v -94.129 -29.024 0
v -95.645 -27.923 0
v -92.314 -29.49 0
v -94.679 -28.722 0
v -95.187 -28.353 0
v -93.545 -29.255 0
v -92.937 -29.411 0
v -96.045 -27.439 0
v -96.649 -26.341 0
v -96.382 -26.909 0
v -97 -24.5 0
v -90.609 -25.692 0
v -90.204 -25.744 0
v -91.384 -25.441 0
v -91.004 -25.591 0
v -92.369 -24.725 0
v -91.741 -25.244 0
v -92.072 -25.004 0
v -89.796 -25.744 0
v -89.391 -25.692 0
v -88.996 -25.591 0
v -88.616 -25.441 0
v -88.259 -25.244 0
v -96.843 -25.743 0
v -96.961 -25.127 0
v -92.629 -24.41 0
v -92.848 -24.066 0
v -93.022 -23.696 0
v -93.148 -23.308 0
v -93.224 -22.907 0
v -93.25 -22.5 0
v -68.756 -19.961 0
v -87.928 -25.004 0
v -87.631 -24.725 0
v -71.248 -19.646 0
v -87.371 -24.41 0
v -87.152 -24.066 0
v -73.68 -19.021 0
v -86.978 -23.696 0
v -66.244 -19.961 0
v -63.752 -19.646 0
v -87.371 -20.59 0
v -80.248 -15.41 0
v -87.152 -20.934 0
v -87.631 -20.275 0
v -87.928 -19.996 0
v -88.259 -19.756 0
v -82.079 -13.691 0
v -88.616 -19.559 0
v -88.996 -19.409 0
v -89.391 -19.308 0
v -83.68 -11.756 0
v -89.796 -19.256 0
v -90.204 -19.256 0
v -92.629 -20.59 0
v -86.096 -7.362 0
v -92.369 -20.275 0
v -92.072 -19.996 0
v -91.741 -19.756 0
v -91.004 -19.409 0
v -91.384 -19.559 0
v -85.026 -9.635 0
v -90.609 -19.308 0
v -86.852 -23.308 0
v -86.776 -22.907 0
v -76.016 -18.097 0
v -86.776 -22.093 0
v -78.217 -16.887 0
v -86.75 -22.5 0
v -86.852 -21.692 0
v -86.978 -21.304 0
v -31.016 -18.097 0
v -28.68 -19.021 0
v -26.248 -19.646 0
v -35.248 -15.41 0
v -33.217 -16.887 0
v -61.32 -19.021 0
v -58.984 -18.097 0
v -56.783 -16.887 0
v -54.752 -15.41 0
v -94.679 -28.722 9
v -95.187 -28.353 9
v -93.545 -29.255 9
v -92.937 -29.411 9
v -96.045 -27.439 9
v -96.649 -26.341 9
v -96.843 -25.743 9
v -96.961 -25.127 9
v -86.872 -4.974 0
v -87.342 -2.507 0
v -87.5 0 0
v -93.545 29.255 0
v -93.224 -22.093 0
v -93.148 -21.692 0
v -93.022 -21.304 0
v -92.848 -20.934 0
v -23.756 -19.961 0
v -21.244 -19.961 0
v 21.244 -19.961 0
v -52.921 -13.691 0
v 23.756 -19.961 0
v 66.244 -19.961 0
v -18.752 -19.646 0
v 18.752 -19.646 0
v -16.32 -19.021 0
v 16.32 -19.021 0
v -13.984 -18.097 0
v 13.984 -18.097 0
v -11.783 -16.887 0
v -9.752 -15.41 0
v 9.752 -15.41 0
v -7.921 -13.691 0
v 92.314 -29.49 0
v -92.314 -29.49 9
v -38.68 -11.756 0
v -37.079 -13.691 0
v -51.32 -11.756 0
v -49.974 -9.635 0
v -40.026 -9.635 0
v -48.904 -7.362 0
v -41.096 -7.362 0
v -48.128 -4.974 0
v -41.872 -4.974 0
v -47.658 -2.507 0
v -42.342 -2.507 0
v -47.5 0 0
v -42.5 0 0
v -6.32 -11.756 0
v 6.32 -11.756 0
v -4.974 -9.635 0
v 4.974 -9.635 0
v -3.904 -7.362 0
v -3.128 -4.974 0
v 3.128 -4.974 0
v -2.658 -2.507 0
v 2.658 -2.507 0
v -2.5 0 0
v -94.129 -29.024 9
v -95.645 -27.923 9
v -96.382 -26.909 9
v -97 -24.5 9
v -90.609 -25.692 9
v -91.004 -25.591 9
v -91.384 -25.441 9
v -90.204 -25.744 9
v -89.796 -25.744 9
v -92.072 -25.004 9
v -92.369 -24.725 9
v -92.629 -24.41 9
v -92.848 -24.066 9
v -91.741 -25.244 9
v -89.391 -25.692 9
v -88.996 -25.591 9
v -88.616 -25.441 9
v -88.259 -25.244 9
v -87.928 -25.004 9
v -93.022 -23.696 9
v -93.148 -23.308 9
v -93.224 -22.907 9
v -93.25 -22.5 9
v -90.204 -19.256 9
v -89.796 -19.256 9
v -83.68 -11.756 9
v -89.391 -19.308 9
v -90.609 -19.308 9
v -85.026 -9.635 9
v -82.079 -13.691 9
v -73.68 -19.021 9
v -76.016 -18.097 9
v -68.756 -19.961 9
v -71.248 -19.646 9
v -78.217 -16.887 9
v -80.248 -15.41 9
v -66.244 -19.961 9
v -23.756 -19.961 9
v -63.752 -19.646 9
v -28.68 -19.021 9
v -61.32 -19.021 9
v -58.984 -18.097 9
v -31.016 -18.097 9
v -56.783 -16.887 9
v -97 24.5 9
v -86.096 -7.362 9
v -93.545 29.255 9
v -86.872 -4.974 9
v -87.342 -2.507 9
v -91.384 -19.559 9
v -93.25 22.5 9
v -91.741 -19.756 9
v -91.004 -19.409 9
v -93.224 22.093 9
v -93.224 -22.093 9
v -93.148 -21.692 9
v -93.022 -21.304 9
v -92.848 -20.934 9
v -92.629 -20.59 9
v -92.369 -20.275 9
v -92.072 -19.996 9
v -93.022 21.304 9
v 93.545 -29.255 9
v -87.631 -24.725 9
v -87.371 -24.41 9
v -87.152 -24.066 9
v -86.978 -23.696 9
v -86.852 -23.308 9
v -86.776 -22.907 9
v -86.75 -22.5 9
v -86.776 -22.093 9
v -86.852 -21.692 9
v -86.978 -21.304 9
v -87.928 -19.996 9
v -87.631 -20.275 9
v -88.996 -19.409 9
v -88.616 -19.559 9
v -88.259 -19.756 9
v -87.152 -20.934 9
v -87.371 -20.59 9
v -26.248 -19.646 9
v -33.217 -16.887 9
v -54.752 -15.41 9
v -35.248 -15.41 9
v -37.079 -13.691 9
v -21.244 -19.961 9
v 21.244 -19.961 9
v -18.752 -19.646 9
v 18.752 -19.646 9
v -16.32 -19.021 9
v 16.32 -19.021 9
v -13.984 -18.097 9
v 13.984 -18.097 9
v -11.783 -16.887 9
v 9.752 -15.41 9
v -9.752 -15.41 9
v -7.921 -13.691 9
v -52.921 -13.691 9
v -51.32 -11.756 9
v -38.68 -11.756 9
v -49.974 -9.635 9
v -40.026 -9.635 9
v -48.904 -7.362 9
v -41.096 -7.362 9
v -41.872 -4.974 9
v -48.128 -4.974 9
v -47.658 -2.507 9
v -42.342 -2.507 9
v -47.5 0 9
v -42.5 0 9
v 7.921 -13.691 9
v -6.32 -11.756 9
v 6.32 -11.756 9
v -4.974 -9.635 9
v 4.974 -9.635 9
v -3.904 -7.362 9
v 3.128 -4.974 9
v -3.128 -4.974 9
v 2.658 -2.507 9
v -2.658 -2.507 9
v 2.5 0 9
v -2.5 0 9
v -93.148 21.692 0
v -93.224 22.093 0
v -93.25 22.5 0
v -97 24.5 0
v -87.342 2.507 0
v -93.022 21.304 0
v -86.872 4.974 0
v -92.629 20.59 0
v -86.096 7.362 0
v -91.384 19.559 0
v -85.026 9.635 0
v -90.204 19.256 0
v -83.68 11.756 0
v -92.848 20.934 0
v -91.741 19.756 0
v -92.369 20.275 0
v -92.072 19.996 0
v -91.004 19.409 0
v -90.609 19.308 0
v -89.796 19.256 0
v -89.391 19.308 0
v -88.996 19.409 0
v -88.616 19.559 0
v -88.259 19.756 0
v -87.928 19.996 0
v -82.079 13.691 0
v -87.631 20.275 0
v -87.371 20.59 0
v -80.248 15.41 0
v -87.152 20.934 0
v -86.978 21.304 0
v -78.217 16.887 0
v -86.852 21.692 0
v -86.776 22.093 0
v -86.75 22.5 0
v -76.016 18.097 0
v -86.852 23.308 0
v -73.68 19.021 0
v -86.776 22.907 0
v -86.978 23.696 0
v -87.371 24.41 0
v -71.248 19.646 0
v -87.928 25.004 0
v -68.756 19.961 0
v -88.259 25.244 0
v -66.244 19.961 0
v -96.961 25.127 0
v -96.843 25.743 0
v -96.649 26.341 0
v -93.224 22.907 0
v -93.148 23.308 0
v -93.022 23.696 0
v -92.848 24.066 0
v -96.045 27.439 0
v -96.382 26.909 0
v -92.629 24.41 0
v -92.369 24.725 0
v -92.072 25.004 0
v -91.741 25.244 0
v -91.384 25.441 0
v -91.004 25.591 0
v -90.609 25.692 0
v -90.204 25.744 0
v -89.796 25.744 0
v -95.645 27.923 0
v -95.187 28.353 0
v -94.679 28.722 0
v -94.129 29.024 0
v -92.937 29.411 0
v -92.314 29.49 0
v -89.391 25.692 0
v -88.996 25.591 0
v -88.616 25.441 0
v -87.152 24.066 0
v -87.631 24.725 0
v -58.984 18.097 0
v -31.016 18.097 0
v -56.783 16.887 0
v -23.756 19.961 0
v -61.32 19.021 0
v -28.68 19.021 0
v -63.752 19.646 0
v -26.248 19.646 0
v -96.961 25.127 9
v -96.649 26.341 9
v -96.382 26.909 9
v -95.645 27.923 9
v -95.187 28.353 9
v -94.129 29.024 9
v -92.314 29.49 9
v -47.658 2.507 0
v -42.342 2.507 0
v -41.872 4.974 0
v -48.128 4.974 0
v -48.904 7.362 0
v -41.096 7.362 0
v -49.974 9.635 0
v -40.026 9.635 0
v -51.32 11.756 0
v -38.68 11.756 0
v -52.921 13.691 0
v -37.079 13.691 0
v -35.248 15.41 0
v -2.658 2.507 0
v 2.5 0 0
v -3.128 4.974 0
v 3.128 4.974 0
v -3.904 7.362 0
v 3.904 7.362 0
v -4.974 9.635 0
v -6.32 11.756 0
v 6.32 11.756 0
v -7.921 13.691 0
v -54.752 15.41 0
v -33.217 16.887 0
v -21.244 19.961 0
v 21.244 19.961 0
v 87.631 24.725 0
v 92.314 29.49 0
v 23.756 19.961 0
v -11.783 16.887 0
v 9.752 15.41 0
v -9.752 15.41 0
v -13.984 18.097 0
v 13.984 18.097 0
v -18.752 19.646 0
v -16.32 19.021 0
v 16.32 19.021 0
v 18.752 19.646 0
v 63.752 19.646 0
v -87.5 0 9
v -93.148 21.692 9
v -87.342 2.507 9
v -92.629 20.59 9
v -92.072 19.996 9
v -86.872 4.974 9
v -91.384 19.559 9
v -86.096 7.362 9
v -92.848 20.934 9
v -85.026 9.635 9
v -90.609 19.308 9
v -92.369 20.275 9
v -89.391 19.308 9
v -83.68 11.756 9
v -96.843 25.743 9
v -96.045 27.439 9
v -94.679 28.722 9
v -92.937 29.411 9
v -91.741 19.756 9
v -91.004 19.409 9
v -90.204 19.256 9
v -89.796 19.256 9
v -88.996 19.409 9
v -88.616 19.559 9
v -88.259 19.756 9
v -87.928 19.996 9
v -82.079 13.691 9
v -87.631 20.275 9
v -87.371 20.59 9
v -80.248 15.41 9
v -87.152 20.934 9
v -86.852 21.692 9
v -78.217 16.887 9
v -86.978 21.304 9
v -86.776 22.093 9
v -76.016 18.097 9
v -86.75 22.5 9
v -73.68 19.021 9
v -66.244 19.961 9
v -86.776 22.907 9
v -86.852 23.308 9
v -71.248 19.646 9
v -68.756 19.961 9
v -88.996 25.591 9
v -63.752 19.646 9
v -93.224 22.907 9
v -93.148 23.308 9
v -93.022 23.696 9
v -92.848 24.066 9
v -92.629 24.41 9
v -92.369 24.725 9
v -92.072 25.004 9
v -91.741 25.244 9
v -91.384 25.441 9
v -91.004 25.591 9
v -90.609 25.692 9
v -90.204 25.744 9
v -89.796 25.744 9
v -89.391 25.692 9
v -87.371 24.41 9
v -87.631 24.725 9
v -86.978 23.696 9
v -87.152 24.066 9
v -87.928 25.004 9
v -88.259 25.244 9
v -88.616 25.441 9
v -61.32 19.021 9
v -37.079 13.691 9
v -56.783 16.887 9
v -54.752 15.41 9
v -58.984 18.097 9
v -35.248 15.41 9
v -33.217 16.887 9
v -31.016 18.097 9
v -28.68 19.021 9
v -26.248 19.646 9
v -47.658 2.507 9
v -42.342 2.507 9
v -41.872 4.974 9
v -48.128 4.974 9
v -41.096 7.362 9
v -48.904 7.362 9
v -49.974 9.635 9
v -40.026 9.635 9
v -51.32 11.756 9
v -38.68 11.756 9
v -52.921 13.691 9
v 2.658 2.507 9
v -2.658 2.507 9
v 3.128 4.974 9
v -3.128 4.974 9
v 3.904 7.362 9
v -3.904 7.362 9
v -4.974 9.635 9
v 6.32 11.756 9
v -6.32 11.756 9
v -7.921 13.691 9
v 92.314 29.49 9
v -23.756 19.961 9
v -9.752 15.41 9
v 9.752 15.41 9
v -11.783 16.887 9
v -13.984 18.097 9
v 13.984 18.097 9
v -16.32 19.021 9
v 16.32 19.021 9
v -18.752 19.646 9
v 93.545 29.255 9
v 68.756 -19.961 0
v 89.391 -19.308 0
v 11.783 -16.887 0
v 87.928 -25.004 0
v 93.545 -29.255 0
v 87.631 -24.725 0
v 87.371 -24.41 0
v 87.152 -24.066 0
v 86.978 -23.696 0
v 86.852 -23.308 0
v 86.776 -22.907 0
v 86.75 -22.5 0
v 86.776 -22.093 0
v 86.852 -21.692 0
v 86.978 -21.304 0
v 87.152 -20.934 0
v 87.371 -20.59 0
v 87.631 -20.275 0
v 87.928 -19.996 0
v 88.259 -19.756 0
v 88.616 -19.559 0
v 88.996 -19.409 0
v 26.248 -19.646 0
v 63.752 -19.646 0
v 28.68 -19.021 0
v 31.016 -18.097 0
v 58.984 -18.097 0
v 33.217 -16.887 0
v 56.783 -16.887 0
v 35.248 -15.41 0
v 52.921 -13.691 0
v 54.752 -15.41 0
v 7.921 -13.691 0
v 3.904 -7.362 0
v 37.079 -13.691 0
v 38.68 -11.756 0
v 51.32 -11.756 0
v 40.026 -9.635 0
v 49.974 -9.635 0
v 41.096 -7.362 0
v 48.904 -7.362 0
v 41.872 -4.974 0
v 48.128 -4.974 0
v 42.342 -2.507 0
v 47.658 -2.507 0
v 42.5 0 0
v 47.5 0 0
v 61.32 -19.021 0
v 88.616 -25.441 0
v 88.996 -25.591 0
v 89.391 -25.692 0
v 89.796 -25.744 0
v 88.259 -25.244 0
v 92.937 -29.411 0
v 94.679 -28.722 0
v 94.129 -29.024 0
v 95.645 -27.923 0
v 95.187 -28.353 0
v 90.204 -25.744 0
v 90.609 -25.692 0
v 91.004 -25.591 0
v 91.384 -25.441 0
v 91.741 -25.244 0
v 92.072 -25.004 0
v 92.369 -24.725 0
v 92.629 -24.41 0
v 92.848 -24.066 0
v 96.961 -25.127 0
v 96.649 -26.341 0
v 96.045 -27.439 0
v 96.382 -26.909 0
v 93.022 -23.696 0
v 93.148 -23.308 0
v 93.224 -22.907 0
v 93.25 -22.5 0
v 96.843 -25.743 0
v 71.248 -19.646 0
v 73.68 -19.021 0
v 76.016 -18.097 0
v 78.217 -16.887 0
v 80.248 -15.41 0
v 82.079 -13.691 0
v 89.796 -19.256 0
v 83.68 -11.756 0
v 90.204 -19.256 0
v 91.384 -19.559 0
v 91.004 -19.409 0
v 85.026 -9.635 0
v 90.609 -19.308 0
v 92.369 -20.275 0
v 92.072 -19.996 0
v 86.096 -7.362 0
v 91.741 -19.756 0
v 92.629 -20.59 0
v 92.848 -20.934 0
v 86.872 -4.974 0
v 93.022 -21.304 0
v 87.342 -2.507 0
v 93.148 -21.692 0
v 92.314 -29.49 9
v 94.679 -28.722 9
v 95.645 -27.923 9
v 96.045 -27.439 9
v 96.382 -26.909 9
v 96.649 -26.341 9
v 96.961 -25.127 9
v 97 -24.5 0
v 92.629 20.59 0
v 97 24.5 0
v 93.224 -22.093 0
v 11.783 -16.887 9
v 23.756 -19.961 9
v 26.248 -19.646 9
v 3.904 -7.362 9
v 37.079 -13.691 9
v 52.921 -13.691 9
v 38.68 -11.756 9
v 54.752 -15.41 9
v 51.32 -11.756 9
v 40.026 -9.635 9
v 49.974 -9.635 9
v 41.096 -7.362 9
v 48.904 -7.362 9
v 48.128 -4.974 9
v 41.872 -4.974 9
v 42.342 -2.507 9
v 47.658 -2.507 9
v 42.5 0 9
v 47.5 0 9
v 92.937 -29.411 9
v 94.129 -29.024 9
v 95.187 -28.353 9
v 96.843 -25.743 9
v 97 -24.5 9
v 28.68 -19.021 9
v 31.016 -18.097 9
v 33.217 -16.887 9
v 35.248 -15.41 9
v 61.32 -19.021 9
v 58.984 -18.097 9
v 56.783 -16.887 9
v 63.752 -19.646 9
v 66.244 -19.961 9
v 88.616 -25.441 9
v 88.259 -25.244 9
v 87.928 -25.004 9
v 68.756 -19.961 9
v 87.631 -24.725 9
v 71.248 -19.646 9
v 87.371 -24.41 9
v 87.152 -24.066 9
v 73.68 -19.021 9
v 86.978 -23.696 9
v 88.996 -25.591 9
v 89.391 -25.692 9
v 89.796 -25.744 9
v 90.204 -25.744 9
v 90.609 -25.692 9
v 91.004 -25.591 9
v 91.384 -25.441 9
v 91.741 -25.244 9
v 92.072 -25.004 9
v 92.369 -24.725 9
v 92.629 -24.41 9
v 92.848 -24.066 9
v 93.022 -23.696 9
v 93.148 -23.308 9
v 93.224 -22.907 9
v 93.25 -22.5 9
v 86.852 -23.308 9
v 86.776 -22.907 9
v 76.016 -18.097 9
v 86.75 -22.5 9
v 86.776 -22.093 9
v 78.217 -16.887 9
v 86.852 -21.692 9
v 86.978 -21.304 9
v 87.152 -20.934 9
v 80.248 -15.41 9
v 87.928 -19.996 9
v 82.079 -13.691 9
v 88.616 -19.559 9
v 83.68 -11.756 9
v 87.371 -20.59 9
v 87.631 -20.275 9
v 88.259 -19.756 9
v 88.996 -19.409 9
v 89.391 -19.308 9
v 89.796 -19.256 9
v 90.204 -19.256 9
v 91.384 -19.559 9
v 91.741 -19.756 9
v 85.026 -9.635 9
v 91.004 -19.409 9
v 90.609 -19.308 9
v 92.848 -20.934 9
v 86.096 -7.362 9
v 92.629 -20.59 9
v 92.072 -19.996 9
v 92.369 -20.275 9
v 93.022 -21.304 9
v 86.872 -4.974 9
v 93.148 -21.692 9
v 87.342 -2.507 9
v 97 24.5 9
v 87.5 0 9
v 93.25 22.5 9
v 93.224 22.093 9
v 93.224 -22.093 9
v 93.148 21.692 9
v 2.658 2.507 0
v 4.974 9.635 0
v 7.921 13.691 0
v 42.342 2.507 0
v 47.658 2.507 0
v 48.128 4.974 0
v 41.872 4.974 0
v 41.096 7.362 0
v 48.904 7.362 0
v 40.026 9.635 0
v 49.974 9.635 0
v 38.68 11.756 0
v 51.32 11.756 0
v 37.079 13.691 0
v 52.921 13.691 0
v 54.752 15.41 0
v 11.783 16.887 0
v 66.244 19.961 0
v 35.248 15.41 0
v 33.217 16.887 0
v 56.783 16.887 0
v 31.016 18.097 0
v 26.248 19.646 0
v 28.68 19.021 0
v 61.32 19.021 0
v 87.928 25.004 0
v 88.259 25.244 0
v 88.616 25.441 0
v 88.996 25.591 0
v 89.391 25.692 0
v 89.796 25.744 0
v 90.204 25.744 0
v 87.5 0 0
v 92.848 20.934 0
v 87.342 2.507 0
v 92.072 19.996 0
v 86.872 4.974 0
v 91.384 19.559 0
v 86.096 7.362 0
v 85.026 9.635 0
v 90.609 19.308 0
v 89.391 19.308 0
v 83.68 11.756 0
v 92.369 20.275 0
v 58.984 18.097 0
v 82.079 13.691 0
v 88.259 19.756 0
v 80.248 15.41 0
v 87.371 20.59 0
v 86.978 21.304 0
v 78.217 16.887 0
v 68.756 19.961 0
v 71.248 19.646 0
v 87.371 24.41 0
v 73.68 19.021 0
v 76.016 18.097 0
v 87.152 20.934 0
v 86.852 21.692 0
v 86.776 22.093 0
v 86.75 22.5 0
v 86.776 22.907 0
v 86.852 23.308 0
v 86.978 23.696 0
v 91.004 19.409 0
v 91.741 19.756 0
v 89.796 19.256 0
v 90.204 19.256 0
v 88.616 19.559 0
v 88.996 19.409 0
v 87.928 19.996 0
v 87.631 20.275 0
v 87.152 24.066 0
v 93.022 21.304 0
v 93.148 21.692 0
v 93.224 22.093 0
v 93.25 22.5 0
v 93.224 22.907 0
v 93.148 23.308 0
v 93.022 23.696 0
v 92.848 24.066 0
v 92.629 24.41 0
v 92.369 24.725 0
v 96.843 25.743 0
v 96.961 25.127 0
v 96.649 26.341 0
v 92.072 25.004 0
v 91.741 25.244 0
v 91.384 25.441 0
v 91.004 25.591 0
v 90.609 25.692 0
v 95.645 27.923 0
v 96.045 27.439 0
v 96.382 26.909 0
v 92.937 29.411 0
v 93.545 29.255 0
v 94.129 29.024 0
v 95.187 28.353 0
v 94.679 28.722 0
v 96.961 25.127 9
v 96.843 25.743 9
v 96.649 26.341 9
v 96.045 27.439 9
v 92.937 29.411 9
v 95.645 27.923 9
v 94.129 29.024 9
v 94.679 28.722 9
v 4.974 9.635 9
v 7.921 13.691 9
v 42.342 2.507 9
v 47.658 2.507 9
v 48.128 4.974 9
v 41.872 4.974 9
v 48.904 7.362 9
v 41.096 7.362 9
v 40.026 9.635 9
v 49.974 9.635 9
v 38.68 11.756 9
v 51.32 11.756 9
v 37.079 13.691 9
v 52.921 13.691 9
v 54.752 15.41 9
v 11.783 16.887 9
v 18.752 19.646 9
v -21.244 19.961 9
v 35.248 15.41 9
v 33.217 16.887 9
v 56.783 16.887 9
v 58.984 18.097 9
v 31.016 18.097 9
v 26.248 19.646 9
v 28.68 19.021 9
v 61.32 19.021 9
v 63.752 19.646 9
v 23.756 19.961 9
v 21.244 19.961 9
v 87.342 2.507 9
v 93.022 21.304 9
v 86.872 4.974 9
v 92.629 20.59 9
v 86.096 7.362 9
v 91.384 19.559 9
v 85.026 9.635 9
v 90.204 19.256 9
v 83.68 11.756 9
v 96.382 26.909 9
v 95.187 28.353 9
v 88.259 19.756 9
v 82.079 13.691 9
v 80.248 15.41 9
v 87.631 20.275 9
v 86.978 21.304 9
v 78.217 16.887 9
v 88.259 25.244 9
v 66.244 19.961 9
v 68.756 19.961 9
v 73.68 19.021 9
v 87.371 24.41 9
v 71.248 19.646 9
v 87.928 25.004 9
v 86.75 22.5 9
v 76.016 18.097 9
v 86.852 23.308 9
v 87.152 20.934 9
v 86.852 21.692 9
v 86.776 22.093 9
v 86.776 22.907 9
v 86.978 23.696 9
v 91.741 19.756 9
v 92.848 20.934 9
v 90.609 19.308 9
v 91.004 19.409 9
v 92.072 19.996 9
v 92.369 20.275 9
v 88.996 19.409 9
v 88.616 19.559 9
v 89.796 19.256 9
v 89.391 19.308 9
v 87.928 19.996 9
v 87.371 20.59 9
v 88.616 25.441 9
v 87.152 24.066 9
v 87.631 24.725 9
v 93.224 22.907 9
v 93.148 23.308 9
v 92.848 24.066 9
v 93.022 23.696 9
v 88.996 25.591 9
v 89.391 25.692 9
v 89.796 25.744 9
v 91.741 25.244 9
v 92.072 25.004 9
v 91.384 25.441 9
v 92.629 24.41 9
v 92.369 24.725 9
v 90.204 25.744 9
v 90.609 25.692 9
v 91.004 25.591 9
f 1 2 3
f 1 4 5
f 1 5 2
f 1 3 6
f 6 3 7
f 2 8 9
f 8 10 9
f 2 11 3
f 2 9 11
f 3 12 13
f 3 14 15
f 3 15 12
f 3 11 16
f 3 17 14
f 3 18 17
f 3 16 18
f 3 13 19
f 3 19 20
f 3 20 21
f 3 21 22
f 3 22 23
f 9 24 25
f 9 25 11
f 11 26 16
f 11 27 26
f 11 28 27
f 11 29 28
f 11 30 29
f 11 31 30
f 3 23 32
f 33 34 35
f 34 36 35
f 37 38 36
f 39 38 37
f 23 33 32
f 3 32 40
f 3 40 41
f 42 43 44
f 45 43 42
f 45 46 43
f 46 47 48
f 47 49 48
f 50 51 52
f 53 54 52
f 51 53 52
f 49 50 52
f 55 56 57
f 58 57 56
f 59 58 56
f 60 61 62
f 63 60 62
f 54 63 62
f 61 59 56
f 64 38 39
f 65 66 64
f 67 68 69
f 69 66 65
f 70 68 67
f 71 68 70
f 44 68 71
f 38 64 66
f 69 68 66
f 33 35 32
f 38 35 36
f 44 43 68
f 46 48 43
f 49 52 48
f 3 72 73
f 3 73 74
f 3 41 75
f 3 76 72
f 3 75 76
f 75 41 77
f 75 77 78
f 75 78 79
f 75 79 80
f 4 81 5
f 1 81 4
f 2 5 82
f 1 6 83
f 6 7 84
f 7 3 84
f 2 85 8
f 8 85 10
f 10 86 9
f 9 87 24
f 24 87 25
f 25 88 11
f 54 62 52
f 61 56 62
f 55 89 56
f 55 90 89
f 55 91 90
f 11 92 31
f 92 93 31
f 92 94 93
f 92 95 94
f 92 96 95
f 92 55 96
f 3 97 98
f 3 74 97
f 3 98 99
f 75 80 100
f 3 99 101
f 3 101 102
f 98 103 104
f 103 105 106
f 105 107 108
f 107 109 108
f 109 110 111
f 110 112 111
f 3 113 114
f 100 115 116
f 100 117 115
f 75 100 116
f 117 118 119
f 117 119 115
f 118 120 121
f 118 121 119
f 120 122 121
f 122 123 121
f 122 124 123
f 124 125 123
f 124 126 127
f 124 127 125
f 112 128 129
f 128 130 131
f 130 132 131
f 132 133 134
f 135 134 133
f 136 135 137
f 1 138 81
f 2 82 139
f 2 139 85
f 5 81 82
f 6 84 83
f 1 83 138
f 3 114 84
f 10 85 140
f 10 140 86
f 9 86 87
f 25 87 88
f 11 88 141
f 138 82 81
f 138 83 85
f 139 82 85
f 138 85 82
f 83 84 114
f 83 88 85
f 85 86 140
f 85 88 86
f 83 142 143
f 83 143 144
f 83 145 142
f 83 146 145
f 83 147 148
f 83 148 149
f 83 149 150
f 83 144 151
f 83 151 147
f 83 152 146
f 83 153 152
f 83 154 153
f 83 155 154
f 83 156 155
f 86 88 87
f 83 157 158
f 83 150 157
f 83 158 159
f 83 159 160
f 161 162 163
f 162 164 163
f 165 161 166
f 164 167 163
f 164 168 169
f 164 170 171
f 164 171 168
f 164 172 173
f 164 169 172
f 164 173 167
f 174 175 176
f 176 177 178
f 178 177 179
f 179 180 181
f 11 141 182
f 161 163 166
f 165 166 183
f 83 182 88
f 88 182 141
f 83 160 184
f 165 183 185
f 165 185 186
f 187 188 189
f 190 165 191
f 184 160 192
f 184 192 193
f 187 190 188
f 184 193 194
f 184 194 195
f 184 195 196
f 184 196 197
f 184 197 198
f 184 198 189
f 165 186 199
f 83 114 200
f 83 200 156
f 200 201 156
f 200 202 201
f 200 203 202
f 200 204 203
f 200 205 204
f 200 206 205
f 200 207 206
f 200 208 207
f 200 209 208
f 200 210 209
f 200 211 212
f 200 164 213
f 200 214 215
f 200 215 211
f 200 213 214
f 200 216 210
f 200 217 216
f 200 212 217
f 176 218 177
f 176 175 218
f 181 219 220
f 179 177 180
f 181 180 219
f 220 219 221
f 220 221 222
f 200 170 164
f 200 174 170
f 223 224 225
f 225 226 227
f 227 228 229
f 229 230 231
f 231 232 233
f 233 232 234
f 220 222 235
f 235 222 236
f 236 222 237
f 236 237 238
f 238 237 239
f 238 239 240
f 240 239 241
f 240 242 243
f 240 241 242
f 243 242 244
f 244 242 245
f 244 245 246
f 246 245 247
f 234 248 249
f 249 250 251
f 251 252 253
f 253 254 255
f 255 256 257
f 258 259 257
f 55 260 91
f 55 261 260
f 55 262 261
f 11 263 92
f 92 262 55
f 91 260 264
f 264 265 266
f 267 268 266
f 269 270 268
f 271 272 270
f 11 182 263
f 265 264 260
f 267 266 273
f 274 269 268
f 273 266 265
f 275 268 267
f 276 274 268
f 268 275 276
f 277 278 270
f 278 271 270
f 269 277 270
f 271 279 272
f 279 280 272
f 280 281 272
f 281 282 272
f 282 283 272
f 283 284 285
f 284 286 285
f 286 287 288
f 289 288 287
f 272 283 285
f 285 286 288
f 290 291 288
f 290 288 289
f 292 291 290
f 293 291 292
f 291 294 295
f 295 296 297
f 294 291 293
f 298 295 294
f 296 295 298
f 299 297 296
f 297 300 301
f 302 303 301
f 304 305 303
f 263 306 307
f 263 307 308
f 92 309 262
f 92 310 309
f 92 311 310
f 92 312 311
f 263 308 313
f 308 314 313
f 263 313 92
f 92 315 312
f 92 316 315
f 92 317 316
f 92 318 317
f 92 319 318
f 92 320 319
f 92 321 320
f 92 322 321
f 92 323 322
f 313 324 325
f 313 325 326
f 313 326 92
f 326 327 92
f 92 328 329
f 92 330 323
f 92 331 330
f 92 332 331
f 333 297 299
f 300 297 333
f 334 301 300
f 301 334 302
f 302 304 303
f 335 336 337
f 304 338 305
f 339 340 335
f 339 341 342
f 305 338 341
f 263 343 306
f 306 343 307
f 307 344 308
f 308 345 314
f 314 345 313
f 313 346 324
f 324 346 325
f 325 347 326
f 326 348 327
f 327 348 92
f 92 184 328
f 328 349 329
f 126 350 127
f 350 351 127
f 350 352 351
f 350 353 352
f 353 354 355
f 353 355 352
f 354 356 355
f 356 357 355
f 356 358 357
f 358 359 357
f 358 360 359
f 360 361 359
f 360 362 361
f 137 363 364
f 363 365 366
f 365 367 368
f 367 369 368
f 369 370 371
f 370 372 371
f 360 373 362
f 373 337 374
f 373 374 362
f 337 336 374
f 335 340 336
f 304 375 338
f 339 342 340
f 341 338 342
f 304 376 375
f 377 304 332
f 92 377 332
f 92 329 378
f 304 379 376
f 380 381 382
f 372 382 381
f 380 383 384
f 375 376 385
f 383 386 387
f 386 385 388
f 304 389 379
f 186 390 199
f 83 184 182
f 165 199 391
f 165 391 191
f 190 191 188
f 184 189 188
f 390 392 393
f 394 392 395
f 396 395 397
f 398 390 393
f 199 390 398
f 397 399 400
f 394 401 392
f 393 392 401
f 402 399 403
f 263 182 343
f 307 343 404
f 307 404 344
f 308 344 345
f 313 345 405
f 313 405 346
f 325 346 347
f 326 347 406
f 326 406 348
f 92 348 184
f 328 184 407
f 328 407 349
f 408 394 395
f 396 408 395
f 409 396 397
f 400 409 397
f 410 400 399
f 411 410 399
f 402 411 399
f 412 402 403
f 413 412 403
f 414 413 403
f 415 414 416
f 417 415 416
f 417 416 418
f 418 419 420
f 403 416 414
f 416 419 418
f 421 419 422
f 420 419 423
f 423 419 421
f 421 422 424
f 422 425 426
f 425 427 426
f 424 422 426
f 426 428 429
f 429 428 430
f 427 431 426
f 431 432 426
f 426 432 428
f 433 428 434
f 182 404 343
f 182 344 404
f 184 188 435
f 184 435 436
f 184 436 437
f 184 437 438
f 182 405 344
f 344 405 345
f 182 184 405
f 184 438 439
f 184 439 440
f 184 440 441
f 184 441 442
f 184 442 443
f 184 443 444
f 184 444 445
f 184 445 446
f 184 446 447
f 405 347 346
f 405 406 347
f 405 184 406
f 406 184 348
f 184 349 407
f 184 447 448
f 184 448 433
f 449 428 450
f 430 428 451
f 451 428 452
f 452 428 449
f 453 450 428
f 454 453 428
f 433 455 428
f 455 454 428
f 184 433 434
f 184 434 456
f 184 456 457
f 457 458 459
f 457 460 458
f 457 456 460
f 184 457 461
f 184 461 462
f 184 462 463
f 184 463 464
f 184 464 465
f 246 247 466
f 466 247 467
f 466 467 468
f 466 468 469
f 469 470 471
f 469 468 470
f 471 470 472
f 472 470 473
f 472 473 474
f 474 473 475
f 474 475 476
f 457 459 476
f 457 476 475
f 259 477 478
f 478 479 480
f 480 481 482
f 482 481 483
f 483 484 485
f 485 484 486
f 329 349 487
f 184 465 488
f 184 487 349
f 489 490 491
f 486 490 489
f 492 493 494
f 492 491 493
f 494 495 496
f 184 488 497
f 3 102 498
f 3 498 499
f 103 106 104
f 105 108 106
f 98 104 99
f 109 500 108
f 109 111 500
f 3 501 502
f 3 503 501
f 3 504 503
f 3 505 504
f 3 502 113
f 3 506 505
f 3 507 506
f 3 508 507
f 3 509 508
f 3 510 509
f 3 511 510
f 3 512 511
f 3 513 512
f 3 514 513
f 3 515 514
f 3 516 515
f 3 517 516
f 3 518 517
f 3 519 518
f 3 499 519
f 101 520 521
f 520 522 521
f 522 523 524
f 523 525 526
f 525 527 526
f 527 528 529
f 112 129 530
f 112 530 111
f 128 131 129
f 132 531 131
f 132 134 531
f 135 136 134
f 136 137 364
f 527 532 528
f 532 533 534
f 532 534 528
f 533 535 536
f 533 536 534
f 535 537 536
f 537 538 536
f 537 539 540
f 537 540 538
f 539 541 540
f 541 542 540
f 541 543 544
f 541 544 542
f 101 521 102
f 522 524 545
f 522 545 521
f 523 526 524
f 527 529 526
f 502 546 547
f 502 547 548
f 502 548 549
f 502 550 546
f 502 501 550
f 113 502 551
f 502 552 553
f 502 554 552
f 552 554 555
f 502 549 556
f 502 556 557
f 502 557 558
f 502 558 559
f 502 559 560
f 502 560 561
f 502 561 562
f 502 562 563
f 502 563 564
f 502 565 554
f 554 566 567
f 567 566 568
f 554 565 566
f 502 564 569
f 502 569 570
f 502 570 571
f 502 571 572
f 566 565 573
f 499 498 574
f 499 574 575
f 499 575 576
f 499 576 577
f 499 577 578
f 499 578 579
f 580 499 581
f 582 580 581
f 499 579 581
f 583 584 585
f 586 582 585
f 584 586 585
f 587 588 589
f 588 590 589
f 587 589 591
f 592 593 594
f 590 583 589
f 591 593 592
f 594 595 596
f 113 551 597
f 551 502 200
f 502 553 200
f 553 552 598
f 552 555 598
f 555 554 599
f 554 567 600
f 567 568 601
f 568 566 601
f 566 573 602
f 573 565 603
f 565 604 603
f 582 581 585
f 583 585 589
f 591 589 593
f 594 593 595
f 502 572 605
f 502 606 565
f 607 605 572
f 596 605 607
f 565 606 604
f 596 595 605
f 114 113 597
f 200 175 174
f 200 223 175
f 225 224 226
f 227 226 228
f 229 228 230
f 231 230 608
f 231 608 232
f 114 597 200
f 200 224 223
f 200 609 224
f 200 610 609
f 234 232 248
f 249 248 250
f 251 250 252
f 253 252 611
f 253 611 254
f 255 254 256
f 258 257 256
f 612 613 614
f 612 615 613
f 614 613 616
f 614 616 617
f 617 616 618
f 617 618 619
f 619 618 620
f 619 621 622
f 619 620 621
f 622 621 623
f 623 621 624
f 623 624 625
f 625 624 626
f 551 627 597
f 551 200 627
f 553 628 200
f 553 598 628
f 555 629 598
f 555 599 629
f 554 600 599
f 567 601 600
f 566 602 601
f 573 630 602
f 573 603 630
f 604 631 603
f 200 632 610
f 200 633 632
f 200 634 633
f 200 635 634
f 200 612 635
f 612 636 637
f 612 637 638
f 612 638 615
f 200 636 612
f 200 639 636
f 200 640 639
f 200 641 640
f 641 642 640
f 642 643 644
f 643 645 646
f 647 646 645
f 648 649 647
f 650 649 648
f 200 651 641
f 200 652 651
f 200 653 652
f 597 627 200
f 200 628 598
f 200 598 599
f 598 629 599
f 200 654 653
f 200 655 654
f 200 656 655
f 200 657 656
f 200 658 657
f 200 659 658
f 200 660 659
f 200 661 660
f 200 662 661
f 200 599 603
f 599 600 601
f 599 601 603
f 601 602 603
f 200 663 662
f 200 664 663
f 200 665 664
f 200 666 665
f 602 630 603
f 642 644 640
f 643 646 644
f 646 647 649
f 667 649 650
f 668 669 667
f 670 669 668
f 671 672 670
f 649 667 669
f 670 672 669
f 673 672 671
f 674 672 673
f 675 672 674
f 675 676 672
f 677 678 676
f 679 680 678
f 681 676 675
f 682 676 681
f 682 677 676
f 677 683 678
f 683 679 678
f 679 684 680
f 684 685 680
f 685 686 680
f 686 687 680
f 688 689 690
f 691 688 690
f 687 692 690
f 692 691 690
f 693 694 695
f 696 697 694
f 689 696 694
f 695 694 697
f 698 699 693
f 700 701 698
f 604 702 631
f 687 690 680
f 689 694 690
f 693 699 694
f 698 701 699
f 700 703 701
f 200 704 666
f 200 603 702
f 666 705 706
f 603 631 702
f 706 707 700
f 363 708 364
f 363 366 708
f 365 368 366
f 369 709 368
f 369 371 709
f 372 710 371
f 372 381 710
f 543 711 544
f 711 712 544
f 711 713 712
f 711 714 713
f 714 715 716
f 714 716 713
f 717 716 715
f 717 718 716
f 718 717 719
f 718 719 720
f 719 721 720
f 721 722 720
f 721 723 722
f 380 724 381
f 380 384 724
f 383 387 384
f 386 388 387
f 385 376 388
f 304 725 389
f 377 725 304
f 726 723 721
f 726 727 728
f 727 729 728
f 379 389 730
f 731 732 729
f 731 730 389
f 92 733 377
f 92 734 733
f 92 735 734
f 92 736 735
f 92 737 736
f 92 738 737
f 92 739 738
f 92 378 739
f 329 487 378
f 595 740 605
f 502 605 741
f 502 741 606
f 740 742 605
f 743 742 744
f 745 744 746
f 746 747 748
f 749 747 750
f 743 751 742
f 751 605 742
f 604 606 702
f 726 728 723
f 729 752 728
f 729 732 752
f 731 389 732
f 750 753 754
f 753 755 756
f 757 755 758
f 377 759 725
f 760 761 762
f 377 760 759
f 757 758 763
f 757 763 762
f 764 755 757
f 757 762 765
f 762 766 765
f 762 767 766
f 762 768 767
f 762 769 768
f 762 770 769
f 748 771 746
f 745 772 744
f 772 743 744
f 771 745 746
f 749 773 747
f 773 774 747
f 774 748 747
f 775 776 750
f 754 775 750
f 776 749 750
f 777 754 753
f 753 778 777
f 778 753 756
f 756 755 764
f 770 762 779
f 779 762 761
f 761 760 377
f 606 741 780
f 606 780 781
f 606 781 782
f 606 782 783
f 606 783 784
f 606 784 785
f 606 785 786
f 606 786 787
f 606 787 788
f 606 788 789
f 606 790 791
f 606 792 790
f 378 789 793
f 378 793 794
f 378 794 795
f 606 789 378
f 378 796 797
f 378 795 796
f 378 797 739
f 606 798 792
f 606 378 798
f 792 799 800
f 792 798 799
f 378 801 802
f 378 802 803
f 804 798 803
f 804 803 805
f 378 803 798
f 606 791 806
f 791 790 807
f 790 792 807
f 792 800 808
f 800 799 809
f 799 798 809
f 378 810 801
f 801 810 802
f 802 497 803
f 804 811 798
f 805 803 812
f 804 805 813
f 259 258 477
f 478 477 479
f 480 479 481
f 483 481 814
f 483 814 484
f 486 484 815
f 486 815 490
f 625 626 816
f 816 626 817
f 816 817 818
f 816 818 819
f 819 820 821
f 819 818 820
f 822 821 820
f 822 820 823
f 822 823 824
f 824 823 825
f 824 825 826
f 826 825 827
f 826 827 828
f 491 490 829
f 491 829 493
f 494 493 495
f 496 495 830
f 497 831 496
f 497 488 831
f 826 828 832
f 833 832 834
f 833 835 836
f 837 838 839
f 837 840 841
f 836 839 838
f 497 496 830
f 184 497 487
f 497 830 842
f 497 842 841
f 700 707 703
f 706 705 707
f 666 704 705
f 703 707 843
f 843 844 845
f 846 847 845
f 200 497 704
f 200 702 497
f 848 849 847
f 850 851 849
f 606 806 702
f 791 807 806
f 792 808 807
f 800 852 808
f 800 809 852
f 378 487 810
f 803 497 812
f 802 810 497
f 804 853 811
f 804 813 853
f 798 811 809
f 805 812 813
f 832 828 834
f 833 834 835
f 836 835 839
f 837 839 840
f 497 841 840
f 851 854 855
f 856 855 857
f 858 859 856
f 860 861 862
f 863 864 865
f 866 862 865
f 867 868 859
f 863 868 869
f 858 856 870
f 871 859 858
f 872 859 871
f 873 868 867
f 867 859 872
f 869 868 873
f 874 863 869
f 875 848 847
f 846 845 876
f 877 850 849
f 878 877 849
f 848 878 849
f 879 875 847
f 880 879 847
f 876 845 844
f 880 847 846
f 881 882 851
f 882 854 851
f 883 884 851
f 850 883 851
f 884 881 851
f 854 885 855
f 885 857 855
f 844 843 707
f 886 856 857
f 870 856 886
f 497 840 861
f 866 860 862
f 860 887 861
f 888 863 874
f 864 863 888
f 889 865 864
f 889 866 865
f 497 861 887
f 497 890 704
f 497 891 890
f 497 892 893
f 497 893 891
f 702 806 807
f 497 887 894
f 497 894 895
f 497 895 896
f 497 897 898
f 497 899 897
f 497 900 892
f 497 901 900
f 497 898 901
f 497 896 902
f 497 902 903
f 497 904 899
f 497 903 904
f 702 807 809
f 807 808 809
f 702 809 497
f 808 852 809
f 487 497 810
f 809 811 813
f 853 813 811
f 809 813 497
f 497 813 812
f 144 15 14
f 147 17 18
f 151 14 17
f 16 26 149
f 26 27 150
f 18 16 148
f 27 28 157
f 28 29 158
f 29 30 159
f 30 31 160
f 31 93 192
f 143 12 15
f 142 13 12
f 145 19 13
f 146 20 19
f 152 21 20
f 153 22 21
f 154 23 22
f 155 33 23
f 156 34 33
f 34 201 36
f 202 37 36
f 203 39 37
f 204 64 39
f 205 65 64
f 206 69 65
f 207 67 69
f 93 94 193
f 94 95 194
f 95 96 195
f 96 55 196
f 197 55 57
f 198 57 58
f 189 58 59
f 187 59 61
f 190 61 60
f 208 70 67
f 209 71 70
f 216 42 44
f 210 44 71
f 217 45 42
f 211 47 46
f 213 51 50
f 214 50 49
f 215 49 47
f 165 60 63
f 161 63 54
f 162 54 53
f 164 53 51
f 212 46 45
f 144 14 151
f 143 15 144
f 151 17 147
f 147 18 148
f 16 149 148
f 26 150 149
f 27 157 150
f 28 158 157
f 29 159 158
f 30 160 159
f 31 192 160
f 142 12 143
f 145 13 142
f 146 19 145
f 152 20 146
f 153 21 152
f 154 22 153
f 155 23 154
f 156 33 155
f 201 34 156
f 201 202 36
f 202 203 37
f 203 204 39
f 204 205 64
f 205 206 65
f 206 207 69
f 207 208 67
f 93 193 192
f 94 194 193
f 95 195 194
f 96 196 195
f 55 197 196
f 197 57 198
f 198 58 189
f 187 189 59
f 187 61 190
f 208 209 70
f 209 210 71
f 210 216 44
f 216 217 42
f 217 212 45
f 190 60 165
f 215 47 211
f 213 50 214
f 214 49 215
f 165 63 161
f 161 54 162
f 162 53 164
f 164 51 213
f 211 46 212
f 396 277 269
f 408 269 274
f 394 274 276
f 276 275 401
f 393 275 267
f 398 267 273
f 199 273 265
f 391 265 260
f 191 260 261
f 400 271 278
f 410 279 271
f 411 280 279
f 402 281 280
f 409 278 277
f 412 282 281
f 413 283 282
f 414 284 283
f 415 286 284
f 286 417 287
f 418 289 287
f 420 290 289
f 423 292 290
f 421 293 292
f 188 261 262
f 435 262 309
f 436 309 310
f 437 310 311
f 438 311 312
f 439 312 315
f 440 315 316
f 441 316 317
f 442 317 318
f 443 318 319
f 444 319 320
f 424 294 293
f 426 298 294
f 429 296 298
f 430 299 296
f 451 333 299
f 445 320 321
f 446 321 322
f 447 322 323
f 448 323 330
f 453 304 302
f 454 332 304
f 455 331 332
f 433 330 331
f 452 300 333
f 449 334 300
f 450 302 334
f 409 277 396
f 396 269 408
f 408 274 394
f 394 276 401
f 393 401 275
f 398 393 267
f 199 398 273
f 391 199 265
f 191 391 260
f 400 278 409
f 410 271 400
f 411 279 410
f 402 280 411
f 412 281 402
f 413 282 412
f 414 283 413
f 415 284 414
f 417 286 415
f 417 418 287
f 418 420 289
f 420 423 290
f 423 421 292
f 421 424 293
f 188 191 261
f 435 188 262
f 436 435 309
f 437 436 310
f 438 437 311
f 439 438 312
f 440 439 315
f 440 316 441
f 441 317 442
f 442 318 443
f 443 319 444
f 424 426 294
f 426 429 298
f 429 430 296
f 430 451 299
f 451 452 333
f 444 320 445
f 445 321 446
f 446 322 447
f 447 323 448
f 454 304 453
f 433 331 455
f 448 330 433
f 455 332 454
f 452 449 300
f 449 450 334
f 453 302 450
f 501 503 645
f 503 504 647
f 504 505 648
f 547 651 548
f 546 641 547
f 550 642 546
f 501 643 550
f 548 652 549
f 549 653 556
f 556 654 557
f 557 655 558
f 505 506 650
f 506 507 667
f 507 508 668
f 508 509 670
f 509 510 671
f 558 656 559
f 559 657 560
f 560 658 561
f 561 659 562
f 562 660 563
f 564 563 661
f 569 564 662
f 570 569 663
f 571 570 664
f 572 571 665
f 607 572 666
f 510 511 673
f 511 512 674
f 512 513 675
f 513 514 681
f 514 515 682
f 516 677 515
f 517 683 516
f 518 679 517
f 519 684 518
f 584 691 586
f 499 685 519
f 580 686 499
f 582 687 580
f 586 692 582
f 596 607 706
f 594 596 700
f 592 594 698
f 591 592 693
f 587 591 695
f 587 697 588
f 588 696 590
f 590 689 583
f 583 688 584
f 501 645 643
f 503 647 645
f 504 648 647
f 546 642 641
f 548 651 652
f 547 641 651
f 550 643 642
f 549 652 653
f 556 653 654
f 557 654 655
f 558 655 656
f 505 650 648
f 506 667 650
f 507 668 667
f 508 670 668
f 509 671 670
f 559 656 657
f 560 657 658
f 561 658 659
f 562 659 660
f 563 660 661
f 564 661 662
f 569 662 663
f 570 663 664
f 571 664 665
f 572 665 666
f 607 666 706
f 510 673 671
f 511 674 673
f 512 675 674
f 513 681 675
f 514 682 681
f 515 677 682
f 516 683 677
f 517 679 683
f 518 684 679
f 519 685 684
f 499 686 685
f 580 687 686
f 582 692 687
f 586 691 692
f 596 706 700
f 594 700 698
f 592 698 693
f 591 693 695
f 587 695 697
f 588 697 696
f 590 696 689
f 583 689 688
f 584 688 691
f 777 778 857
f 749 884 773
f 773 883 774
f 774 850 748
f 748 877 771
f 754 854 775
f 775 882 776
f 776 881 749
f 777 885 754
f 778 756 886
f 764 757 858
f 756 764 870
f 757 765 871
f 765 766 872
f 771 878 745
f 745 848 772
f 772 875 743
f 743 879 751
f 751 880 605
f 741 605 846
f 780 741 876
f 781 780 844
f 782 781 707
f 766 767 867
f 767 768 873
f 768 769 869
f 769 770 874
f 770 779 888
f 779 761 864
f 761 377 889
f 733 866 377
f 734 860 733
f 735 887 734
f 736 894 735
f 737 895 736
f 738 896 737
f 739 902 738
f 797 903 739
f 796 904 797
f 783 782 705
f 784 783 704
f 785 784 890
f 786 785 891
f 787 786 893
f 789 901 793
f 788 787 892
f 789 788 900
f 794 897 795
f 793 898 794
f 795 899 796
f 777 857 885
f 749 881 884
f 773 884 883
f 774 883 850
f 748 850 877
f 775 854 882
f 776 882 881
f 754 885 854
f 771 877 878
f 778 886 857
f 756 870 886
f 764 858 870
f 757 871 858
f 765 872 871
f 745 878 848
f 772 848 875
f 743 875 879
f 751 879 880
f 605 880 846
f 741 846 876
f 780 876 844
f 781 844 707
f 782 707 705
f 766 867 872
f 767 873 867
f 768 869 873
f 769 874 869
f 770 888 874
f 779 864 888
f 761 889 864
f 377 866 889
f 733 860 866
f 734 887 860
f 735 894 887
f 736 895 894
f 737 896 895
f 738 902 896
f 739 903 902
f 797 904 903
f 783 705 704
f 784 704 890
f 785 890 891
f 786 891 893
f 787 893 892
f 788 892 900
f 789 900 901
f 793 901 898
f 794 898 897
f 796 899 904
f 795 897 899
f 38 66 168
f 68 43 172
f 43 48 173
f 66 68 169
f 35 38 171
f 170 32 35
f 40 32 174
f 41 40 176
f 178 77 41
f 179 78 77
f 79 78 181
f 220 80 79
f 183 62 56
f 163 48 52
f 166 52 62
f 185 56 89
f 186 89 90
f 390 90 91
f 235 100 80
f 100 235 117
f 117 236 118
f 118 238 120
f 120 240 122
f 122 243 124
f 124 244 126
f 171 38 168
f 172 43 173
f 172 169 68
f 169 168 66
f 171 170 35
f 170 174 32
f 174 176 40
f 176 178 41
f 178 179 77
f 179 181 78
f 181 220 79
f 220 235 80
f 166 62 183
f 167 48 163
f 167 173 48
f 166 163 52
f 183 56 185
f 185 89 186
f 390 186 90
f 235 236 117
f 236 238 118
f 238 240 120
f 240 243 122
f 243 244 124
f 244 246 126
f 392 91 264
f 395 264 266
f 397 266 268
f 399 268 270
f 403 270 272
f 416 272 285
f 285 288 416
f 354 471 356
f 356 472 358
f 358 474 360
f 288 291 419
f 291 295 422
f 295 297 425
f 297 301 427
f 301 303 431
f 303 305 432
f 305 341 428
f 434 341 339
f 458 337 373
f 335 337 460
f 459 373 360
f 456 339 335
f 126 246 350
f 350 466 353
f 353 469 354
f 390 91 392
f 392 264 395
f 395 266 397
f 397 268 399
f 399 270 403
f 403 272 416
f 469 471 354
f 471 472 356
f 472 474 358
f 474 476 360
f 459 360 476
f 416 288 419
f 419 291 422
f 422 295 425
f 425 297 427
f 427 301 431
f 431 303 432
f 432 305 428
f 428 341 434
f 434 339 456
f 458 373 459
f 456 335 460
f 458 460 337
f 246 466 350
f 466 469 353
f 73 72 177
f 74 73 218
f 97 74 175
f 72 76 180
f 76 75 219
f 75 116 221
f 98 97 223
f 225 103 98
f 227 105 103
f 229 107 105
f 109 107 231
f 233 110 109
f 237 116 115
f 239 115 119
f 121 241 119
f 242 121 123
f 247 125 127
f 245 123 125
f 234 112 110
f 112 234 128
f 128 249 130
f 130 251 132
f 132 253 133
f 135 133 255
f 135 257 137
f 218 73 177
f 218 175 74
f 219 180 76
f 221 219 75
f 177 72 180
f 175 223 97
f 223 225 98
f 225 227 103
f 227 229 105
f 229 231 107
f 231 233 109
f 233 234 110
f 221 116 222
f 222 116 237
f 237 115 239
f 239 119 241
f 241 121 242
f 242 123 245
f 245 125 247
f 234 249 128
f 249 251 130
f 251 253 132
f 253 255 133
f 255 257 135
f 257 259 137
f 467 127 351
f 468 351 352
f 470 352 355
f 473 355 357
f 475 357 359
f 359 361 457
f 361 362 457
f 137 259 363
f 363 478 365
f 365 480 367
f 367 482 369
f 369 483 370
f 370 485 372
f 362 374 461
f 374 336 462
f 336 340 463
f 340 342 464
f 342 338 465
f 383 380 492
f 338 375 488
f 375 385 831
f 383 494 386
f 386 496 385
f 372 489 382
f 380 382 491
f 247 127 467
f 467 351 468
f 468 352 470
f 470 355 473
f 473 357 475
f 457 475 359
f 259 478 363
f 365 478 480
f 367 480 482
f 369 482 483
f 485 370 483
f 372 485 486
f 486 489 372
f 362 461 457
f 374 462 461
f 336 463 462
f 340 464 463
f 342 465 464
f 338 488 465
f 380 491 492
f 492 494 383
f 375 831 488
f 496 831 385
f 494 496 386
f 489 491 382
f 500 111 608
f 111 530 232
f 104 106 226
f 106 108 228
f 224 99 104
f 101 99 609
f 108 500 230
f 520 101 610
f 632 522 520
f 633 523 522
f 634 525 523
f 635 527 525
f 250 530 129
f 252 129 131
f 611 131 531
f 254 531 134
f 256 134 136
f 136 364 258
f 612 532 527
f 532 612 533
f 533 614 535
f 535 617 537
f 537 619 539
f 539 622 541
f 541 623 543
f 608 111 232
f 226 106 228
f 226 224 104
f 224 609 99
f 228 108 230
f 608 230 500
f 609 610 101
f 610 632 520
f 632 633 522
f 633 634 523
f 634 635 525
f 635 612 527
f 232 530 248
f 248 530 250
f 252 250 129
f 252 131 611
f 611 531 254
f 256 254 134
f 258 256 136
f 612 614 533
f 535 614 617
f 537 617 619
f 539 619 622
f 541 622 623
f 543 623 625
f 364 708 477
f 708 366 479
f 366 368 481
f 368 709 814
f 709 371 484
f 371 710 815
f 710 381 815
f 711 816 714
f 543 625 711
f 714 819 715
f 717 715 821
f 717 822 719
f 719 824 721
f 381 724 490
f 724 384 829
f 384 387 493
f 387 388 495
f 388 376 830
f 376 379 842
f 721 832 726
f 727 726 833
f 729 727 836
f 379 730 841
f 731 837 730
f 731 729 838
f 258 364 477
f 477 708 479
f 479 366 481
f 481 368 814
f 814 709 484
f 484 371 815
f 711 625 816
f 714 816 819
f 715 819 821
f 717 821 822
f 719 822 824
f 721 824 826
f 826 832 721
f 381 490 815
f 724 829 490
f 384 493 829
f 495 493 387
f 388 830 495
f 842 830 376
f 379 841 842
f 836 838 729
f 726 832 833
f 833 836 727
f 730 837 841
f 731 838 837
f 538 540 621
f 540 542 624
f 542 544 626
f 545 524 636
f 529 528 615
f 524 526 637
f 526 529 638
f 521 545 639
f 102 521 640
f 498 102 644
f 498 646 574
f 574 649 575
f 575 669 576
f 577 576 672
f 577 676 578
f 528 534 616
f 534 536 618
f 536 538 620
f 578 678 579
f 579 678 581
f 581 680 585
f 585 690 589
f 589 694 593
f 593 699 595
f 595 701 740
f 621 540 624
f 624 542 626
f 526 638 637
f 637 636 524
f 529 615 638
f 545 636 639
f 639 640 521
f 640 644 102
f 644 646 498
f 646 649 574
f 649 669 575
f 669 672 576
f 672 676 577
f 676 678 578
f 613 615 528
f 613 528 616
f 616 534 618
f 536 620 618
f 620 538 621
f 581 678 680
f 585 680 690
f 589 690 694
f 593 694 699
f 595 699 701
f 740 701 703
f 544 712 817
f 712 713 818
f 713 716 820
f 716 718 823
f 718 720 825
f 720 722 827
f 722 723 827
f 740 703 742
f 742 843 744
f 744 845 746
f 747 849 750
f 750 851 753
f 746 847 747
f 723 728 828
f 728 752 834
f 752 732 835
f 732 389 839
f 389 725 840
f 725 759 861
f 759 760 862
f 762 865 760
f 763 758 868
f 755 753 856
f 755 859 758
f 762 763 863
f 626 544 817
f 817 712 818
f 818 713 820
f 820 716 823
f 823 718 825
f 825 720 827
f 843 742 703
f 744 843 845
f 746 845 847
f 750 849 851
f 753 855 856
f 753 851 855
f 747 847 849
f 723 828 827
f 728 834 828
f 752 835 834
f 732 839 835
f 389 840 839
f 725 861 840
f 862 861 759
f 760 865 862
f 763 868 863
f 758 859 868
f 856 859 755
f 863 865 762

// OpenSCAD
$fn = 50;

difference() {
	union() {
		hull() {
			translate(v = [-92.0, 24.5, 0]) {
				cylinder(h = 9, r = 5);
			}
			translate(v = [92.0, 24.5, 0]) {
				cylinder(h = 9, r = 5);
			}
			translate(v = [-92.0, -24.5, 0]) {
				cylinder(h = 9, r = 5);
			}
			translate(v = [92.0, -24.5, 0]) {
				cylinder(h = 9, r = 5);
			}
		}
	}
	union() {
		translate(v = [-90.0, -22.5, -100.0]) {
			cylinder(h = 200, r = 3.25);
		}
		translate(v = [-90.0, 22.5, -100.0]) {
			cylinder(h = 200, r = 3.25);
		}
		translate(v = [90.0, -22.5, -100.0]) {
			cylinder(h = 200, r = 3.25);
		}
		translate(v = [90.0, 22.5, -100.0]) {
			cylinder(h = 200, r = 3.25);
		}
		translate(v = [-90.0, -22.5, -100.0]) {
			cylinder(h = 200, r = 1.8);
		}
		translate(v = [-90.0, 22.5, -100.0]) {
			cylinder(h = 200, r = 1.8);
		}
		translate(v = [90.0, -22.5, -100.0]) {
			cylinder(h = 200, r = 1.8);
		}
		translate(v = [90.0, 22.5, -100.0]) {
			cylinder(h = 200, r = 1.8);
		}
		translate(v = [-67.5, 0, 0.0]) {
			cylinder(h = 9, r = 20.0);
		}
		translate(v = [-22.5, 0, 0.0]) {
			cylinder(h = 9, r = 20.0);
		}
		translate(v = [22.5, 0, 0.0]) {
			cylinder(h = 9, r = 20.0);
		}
		translate(v = [67.5, 0, 0.0]) {
			cylinder(h = 9, r = 20.0);
		}
	}
}
